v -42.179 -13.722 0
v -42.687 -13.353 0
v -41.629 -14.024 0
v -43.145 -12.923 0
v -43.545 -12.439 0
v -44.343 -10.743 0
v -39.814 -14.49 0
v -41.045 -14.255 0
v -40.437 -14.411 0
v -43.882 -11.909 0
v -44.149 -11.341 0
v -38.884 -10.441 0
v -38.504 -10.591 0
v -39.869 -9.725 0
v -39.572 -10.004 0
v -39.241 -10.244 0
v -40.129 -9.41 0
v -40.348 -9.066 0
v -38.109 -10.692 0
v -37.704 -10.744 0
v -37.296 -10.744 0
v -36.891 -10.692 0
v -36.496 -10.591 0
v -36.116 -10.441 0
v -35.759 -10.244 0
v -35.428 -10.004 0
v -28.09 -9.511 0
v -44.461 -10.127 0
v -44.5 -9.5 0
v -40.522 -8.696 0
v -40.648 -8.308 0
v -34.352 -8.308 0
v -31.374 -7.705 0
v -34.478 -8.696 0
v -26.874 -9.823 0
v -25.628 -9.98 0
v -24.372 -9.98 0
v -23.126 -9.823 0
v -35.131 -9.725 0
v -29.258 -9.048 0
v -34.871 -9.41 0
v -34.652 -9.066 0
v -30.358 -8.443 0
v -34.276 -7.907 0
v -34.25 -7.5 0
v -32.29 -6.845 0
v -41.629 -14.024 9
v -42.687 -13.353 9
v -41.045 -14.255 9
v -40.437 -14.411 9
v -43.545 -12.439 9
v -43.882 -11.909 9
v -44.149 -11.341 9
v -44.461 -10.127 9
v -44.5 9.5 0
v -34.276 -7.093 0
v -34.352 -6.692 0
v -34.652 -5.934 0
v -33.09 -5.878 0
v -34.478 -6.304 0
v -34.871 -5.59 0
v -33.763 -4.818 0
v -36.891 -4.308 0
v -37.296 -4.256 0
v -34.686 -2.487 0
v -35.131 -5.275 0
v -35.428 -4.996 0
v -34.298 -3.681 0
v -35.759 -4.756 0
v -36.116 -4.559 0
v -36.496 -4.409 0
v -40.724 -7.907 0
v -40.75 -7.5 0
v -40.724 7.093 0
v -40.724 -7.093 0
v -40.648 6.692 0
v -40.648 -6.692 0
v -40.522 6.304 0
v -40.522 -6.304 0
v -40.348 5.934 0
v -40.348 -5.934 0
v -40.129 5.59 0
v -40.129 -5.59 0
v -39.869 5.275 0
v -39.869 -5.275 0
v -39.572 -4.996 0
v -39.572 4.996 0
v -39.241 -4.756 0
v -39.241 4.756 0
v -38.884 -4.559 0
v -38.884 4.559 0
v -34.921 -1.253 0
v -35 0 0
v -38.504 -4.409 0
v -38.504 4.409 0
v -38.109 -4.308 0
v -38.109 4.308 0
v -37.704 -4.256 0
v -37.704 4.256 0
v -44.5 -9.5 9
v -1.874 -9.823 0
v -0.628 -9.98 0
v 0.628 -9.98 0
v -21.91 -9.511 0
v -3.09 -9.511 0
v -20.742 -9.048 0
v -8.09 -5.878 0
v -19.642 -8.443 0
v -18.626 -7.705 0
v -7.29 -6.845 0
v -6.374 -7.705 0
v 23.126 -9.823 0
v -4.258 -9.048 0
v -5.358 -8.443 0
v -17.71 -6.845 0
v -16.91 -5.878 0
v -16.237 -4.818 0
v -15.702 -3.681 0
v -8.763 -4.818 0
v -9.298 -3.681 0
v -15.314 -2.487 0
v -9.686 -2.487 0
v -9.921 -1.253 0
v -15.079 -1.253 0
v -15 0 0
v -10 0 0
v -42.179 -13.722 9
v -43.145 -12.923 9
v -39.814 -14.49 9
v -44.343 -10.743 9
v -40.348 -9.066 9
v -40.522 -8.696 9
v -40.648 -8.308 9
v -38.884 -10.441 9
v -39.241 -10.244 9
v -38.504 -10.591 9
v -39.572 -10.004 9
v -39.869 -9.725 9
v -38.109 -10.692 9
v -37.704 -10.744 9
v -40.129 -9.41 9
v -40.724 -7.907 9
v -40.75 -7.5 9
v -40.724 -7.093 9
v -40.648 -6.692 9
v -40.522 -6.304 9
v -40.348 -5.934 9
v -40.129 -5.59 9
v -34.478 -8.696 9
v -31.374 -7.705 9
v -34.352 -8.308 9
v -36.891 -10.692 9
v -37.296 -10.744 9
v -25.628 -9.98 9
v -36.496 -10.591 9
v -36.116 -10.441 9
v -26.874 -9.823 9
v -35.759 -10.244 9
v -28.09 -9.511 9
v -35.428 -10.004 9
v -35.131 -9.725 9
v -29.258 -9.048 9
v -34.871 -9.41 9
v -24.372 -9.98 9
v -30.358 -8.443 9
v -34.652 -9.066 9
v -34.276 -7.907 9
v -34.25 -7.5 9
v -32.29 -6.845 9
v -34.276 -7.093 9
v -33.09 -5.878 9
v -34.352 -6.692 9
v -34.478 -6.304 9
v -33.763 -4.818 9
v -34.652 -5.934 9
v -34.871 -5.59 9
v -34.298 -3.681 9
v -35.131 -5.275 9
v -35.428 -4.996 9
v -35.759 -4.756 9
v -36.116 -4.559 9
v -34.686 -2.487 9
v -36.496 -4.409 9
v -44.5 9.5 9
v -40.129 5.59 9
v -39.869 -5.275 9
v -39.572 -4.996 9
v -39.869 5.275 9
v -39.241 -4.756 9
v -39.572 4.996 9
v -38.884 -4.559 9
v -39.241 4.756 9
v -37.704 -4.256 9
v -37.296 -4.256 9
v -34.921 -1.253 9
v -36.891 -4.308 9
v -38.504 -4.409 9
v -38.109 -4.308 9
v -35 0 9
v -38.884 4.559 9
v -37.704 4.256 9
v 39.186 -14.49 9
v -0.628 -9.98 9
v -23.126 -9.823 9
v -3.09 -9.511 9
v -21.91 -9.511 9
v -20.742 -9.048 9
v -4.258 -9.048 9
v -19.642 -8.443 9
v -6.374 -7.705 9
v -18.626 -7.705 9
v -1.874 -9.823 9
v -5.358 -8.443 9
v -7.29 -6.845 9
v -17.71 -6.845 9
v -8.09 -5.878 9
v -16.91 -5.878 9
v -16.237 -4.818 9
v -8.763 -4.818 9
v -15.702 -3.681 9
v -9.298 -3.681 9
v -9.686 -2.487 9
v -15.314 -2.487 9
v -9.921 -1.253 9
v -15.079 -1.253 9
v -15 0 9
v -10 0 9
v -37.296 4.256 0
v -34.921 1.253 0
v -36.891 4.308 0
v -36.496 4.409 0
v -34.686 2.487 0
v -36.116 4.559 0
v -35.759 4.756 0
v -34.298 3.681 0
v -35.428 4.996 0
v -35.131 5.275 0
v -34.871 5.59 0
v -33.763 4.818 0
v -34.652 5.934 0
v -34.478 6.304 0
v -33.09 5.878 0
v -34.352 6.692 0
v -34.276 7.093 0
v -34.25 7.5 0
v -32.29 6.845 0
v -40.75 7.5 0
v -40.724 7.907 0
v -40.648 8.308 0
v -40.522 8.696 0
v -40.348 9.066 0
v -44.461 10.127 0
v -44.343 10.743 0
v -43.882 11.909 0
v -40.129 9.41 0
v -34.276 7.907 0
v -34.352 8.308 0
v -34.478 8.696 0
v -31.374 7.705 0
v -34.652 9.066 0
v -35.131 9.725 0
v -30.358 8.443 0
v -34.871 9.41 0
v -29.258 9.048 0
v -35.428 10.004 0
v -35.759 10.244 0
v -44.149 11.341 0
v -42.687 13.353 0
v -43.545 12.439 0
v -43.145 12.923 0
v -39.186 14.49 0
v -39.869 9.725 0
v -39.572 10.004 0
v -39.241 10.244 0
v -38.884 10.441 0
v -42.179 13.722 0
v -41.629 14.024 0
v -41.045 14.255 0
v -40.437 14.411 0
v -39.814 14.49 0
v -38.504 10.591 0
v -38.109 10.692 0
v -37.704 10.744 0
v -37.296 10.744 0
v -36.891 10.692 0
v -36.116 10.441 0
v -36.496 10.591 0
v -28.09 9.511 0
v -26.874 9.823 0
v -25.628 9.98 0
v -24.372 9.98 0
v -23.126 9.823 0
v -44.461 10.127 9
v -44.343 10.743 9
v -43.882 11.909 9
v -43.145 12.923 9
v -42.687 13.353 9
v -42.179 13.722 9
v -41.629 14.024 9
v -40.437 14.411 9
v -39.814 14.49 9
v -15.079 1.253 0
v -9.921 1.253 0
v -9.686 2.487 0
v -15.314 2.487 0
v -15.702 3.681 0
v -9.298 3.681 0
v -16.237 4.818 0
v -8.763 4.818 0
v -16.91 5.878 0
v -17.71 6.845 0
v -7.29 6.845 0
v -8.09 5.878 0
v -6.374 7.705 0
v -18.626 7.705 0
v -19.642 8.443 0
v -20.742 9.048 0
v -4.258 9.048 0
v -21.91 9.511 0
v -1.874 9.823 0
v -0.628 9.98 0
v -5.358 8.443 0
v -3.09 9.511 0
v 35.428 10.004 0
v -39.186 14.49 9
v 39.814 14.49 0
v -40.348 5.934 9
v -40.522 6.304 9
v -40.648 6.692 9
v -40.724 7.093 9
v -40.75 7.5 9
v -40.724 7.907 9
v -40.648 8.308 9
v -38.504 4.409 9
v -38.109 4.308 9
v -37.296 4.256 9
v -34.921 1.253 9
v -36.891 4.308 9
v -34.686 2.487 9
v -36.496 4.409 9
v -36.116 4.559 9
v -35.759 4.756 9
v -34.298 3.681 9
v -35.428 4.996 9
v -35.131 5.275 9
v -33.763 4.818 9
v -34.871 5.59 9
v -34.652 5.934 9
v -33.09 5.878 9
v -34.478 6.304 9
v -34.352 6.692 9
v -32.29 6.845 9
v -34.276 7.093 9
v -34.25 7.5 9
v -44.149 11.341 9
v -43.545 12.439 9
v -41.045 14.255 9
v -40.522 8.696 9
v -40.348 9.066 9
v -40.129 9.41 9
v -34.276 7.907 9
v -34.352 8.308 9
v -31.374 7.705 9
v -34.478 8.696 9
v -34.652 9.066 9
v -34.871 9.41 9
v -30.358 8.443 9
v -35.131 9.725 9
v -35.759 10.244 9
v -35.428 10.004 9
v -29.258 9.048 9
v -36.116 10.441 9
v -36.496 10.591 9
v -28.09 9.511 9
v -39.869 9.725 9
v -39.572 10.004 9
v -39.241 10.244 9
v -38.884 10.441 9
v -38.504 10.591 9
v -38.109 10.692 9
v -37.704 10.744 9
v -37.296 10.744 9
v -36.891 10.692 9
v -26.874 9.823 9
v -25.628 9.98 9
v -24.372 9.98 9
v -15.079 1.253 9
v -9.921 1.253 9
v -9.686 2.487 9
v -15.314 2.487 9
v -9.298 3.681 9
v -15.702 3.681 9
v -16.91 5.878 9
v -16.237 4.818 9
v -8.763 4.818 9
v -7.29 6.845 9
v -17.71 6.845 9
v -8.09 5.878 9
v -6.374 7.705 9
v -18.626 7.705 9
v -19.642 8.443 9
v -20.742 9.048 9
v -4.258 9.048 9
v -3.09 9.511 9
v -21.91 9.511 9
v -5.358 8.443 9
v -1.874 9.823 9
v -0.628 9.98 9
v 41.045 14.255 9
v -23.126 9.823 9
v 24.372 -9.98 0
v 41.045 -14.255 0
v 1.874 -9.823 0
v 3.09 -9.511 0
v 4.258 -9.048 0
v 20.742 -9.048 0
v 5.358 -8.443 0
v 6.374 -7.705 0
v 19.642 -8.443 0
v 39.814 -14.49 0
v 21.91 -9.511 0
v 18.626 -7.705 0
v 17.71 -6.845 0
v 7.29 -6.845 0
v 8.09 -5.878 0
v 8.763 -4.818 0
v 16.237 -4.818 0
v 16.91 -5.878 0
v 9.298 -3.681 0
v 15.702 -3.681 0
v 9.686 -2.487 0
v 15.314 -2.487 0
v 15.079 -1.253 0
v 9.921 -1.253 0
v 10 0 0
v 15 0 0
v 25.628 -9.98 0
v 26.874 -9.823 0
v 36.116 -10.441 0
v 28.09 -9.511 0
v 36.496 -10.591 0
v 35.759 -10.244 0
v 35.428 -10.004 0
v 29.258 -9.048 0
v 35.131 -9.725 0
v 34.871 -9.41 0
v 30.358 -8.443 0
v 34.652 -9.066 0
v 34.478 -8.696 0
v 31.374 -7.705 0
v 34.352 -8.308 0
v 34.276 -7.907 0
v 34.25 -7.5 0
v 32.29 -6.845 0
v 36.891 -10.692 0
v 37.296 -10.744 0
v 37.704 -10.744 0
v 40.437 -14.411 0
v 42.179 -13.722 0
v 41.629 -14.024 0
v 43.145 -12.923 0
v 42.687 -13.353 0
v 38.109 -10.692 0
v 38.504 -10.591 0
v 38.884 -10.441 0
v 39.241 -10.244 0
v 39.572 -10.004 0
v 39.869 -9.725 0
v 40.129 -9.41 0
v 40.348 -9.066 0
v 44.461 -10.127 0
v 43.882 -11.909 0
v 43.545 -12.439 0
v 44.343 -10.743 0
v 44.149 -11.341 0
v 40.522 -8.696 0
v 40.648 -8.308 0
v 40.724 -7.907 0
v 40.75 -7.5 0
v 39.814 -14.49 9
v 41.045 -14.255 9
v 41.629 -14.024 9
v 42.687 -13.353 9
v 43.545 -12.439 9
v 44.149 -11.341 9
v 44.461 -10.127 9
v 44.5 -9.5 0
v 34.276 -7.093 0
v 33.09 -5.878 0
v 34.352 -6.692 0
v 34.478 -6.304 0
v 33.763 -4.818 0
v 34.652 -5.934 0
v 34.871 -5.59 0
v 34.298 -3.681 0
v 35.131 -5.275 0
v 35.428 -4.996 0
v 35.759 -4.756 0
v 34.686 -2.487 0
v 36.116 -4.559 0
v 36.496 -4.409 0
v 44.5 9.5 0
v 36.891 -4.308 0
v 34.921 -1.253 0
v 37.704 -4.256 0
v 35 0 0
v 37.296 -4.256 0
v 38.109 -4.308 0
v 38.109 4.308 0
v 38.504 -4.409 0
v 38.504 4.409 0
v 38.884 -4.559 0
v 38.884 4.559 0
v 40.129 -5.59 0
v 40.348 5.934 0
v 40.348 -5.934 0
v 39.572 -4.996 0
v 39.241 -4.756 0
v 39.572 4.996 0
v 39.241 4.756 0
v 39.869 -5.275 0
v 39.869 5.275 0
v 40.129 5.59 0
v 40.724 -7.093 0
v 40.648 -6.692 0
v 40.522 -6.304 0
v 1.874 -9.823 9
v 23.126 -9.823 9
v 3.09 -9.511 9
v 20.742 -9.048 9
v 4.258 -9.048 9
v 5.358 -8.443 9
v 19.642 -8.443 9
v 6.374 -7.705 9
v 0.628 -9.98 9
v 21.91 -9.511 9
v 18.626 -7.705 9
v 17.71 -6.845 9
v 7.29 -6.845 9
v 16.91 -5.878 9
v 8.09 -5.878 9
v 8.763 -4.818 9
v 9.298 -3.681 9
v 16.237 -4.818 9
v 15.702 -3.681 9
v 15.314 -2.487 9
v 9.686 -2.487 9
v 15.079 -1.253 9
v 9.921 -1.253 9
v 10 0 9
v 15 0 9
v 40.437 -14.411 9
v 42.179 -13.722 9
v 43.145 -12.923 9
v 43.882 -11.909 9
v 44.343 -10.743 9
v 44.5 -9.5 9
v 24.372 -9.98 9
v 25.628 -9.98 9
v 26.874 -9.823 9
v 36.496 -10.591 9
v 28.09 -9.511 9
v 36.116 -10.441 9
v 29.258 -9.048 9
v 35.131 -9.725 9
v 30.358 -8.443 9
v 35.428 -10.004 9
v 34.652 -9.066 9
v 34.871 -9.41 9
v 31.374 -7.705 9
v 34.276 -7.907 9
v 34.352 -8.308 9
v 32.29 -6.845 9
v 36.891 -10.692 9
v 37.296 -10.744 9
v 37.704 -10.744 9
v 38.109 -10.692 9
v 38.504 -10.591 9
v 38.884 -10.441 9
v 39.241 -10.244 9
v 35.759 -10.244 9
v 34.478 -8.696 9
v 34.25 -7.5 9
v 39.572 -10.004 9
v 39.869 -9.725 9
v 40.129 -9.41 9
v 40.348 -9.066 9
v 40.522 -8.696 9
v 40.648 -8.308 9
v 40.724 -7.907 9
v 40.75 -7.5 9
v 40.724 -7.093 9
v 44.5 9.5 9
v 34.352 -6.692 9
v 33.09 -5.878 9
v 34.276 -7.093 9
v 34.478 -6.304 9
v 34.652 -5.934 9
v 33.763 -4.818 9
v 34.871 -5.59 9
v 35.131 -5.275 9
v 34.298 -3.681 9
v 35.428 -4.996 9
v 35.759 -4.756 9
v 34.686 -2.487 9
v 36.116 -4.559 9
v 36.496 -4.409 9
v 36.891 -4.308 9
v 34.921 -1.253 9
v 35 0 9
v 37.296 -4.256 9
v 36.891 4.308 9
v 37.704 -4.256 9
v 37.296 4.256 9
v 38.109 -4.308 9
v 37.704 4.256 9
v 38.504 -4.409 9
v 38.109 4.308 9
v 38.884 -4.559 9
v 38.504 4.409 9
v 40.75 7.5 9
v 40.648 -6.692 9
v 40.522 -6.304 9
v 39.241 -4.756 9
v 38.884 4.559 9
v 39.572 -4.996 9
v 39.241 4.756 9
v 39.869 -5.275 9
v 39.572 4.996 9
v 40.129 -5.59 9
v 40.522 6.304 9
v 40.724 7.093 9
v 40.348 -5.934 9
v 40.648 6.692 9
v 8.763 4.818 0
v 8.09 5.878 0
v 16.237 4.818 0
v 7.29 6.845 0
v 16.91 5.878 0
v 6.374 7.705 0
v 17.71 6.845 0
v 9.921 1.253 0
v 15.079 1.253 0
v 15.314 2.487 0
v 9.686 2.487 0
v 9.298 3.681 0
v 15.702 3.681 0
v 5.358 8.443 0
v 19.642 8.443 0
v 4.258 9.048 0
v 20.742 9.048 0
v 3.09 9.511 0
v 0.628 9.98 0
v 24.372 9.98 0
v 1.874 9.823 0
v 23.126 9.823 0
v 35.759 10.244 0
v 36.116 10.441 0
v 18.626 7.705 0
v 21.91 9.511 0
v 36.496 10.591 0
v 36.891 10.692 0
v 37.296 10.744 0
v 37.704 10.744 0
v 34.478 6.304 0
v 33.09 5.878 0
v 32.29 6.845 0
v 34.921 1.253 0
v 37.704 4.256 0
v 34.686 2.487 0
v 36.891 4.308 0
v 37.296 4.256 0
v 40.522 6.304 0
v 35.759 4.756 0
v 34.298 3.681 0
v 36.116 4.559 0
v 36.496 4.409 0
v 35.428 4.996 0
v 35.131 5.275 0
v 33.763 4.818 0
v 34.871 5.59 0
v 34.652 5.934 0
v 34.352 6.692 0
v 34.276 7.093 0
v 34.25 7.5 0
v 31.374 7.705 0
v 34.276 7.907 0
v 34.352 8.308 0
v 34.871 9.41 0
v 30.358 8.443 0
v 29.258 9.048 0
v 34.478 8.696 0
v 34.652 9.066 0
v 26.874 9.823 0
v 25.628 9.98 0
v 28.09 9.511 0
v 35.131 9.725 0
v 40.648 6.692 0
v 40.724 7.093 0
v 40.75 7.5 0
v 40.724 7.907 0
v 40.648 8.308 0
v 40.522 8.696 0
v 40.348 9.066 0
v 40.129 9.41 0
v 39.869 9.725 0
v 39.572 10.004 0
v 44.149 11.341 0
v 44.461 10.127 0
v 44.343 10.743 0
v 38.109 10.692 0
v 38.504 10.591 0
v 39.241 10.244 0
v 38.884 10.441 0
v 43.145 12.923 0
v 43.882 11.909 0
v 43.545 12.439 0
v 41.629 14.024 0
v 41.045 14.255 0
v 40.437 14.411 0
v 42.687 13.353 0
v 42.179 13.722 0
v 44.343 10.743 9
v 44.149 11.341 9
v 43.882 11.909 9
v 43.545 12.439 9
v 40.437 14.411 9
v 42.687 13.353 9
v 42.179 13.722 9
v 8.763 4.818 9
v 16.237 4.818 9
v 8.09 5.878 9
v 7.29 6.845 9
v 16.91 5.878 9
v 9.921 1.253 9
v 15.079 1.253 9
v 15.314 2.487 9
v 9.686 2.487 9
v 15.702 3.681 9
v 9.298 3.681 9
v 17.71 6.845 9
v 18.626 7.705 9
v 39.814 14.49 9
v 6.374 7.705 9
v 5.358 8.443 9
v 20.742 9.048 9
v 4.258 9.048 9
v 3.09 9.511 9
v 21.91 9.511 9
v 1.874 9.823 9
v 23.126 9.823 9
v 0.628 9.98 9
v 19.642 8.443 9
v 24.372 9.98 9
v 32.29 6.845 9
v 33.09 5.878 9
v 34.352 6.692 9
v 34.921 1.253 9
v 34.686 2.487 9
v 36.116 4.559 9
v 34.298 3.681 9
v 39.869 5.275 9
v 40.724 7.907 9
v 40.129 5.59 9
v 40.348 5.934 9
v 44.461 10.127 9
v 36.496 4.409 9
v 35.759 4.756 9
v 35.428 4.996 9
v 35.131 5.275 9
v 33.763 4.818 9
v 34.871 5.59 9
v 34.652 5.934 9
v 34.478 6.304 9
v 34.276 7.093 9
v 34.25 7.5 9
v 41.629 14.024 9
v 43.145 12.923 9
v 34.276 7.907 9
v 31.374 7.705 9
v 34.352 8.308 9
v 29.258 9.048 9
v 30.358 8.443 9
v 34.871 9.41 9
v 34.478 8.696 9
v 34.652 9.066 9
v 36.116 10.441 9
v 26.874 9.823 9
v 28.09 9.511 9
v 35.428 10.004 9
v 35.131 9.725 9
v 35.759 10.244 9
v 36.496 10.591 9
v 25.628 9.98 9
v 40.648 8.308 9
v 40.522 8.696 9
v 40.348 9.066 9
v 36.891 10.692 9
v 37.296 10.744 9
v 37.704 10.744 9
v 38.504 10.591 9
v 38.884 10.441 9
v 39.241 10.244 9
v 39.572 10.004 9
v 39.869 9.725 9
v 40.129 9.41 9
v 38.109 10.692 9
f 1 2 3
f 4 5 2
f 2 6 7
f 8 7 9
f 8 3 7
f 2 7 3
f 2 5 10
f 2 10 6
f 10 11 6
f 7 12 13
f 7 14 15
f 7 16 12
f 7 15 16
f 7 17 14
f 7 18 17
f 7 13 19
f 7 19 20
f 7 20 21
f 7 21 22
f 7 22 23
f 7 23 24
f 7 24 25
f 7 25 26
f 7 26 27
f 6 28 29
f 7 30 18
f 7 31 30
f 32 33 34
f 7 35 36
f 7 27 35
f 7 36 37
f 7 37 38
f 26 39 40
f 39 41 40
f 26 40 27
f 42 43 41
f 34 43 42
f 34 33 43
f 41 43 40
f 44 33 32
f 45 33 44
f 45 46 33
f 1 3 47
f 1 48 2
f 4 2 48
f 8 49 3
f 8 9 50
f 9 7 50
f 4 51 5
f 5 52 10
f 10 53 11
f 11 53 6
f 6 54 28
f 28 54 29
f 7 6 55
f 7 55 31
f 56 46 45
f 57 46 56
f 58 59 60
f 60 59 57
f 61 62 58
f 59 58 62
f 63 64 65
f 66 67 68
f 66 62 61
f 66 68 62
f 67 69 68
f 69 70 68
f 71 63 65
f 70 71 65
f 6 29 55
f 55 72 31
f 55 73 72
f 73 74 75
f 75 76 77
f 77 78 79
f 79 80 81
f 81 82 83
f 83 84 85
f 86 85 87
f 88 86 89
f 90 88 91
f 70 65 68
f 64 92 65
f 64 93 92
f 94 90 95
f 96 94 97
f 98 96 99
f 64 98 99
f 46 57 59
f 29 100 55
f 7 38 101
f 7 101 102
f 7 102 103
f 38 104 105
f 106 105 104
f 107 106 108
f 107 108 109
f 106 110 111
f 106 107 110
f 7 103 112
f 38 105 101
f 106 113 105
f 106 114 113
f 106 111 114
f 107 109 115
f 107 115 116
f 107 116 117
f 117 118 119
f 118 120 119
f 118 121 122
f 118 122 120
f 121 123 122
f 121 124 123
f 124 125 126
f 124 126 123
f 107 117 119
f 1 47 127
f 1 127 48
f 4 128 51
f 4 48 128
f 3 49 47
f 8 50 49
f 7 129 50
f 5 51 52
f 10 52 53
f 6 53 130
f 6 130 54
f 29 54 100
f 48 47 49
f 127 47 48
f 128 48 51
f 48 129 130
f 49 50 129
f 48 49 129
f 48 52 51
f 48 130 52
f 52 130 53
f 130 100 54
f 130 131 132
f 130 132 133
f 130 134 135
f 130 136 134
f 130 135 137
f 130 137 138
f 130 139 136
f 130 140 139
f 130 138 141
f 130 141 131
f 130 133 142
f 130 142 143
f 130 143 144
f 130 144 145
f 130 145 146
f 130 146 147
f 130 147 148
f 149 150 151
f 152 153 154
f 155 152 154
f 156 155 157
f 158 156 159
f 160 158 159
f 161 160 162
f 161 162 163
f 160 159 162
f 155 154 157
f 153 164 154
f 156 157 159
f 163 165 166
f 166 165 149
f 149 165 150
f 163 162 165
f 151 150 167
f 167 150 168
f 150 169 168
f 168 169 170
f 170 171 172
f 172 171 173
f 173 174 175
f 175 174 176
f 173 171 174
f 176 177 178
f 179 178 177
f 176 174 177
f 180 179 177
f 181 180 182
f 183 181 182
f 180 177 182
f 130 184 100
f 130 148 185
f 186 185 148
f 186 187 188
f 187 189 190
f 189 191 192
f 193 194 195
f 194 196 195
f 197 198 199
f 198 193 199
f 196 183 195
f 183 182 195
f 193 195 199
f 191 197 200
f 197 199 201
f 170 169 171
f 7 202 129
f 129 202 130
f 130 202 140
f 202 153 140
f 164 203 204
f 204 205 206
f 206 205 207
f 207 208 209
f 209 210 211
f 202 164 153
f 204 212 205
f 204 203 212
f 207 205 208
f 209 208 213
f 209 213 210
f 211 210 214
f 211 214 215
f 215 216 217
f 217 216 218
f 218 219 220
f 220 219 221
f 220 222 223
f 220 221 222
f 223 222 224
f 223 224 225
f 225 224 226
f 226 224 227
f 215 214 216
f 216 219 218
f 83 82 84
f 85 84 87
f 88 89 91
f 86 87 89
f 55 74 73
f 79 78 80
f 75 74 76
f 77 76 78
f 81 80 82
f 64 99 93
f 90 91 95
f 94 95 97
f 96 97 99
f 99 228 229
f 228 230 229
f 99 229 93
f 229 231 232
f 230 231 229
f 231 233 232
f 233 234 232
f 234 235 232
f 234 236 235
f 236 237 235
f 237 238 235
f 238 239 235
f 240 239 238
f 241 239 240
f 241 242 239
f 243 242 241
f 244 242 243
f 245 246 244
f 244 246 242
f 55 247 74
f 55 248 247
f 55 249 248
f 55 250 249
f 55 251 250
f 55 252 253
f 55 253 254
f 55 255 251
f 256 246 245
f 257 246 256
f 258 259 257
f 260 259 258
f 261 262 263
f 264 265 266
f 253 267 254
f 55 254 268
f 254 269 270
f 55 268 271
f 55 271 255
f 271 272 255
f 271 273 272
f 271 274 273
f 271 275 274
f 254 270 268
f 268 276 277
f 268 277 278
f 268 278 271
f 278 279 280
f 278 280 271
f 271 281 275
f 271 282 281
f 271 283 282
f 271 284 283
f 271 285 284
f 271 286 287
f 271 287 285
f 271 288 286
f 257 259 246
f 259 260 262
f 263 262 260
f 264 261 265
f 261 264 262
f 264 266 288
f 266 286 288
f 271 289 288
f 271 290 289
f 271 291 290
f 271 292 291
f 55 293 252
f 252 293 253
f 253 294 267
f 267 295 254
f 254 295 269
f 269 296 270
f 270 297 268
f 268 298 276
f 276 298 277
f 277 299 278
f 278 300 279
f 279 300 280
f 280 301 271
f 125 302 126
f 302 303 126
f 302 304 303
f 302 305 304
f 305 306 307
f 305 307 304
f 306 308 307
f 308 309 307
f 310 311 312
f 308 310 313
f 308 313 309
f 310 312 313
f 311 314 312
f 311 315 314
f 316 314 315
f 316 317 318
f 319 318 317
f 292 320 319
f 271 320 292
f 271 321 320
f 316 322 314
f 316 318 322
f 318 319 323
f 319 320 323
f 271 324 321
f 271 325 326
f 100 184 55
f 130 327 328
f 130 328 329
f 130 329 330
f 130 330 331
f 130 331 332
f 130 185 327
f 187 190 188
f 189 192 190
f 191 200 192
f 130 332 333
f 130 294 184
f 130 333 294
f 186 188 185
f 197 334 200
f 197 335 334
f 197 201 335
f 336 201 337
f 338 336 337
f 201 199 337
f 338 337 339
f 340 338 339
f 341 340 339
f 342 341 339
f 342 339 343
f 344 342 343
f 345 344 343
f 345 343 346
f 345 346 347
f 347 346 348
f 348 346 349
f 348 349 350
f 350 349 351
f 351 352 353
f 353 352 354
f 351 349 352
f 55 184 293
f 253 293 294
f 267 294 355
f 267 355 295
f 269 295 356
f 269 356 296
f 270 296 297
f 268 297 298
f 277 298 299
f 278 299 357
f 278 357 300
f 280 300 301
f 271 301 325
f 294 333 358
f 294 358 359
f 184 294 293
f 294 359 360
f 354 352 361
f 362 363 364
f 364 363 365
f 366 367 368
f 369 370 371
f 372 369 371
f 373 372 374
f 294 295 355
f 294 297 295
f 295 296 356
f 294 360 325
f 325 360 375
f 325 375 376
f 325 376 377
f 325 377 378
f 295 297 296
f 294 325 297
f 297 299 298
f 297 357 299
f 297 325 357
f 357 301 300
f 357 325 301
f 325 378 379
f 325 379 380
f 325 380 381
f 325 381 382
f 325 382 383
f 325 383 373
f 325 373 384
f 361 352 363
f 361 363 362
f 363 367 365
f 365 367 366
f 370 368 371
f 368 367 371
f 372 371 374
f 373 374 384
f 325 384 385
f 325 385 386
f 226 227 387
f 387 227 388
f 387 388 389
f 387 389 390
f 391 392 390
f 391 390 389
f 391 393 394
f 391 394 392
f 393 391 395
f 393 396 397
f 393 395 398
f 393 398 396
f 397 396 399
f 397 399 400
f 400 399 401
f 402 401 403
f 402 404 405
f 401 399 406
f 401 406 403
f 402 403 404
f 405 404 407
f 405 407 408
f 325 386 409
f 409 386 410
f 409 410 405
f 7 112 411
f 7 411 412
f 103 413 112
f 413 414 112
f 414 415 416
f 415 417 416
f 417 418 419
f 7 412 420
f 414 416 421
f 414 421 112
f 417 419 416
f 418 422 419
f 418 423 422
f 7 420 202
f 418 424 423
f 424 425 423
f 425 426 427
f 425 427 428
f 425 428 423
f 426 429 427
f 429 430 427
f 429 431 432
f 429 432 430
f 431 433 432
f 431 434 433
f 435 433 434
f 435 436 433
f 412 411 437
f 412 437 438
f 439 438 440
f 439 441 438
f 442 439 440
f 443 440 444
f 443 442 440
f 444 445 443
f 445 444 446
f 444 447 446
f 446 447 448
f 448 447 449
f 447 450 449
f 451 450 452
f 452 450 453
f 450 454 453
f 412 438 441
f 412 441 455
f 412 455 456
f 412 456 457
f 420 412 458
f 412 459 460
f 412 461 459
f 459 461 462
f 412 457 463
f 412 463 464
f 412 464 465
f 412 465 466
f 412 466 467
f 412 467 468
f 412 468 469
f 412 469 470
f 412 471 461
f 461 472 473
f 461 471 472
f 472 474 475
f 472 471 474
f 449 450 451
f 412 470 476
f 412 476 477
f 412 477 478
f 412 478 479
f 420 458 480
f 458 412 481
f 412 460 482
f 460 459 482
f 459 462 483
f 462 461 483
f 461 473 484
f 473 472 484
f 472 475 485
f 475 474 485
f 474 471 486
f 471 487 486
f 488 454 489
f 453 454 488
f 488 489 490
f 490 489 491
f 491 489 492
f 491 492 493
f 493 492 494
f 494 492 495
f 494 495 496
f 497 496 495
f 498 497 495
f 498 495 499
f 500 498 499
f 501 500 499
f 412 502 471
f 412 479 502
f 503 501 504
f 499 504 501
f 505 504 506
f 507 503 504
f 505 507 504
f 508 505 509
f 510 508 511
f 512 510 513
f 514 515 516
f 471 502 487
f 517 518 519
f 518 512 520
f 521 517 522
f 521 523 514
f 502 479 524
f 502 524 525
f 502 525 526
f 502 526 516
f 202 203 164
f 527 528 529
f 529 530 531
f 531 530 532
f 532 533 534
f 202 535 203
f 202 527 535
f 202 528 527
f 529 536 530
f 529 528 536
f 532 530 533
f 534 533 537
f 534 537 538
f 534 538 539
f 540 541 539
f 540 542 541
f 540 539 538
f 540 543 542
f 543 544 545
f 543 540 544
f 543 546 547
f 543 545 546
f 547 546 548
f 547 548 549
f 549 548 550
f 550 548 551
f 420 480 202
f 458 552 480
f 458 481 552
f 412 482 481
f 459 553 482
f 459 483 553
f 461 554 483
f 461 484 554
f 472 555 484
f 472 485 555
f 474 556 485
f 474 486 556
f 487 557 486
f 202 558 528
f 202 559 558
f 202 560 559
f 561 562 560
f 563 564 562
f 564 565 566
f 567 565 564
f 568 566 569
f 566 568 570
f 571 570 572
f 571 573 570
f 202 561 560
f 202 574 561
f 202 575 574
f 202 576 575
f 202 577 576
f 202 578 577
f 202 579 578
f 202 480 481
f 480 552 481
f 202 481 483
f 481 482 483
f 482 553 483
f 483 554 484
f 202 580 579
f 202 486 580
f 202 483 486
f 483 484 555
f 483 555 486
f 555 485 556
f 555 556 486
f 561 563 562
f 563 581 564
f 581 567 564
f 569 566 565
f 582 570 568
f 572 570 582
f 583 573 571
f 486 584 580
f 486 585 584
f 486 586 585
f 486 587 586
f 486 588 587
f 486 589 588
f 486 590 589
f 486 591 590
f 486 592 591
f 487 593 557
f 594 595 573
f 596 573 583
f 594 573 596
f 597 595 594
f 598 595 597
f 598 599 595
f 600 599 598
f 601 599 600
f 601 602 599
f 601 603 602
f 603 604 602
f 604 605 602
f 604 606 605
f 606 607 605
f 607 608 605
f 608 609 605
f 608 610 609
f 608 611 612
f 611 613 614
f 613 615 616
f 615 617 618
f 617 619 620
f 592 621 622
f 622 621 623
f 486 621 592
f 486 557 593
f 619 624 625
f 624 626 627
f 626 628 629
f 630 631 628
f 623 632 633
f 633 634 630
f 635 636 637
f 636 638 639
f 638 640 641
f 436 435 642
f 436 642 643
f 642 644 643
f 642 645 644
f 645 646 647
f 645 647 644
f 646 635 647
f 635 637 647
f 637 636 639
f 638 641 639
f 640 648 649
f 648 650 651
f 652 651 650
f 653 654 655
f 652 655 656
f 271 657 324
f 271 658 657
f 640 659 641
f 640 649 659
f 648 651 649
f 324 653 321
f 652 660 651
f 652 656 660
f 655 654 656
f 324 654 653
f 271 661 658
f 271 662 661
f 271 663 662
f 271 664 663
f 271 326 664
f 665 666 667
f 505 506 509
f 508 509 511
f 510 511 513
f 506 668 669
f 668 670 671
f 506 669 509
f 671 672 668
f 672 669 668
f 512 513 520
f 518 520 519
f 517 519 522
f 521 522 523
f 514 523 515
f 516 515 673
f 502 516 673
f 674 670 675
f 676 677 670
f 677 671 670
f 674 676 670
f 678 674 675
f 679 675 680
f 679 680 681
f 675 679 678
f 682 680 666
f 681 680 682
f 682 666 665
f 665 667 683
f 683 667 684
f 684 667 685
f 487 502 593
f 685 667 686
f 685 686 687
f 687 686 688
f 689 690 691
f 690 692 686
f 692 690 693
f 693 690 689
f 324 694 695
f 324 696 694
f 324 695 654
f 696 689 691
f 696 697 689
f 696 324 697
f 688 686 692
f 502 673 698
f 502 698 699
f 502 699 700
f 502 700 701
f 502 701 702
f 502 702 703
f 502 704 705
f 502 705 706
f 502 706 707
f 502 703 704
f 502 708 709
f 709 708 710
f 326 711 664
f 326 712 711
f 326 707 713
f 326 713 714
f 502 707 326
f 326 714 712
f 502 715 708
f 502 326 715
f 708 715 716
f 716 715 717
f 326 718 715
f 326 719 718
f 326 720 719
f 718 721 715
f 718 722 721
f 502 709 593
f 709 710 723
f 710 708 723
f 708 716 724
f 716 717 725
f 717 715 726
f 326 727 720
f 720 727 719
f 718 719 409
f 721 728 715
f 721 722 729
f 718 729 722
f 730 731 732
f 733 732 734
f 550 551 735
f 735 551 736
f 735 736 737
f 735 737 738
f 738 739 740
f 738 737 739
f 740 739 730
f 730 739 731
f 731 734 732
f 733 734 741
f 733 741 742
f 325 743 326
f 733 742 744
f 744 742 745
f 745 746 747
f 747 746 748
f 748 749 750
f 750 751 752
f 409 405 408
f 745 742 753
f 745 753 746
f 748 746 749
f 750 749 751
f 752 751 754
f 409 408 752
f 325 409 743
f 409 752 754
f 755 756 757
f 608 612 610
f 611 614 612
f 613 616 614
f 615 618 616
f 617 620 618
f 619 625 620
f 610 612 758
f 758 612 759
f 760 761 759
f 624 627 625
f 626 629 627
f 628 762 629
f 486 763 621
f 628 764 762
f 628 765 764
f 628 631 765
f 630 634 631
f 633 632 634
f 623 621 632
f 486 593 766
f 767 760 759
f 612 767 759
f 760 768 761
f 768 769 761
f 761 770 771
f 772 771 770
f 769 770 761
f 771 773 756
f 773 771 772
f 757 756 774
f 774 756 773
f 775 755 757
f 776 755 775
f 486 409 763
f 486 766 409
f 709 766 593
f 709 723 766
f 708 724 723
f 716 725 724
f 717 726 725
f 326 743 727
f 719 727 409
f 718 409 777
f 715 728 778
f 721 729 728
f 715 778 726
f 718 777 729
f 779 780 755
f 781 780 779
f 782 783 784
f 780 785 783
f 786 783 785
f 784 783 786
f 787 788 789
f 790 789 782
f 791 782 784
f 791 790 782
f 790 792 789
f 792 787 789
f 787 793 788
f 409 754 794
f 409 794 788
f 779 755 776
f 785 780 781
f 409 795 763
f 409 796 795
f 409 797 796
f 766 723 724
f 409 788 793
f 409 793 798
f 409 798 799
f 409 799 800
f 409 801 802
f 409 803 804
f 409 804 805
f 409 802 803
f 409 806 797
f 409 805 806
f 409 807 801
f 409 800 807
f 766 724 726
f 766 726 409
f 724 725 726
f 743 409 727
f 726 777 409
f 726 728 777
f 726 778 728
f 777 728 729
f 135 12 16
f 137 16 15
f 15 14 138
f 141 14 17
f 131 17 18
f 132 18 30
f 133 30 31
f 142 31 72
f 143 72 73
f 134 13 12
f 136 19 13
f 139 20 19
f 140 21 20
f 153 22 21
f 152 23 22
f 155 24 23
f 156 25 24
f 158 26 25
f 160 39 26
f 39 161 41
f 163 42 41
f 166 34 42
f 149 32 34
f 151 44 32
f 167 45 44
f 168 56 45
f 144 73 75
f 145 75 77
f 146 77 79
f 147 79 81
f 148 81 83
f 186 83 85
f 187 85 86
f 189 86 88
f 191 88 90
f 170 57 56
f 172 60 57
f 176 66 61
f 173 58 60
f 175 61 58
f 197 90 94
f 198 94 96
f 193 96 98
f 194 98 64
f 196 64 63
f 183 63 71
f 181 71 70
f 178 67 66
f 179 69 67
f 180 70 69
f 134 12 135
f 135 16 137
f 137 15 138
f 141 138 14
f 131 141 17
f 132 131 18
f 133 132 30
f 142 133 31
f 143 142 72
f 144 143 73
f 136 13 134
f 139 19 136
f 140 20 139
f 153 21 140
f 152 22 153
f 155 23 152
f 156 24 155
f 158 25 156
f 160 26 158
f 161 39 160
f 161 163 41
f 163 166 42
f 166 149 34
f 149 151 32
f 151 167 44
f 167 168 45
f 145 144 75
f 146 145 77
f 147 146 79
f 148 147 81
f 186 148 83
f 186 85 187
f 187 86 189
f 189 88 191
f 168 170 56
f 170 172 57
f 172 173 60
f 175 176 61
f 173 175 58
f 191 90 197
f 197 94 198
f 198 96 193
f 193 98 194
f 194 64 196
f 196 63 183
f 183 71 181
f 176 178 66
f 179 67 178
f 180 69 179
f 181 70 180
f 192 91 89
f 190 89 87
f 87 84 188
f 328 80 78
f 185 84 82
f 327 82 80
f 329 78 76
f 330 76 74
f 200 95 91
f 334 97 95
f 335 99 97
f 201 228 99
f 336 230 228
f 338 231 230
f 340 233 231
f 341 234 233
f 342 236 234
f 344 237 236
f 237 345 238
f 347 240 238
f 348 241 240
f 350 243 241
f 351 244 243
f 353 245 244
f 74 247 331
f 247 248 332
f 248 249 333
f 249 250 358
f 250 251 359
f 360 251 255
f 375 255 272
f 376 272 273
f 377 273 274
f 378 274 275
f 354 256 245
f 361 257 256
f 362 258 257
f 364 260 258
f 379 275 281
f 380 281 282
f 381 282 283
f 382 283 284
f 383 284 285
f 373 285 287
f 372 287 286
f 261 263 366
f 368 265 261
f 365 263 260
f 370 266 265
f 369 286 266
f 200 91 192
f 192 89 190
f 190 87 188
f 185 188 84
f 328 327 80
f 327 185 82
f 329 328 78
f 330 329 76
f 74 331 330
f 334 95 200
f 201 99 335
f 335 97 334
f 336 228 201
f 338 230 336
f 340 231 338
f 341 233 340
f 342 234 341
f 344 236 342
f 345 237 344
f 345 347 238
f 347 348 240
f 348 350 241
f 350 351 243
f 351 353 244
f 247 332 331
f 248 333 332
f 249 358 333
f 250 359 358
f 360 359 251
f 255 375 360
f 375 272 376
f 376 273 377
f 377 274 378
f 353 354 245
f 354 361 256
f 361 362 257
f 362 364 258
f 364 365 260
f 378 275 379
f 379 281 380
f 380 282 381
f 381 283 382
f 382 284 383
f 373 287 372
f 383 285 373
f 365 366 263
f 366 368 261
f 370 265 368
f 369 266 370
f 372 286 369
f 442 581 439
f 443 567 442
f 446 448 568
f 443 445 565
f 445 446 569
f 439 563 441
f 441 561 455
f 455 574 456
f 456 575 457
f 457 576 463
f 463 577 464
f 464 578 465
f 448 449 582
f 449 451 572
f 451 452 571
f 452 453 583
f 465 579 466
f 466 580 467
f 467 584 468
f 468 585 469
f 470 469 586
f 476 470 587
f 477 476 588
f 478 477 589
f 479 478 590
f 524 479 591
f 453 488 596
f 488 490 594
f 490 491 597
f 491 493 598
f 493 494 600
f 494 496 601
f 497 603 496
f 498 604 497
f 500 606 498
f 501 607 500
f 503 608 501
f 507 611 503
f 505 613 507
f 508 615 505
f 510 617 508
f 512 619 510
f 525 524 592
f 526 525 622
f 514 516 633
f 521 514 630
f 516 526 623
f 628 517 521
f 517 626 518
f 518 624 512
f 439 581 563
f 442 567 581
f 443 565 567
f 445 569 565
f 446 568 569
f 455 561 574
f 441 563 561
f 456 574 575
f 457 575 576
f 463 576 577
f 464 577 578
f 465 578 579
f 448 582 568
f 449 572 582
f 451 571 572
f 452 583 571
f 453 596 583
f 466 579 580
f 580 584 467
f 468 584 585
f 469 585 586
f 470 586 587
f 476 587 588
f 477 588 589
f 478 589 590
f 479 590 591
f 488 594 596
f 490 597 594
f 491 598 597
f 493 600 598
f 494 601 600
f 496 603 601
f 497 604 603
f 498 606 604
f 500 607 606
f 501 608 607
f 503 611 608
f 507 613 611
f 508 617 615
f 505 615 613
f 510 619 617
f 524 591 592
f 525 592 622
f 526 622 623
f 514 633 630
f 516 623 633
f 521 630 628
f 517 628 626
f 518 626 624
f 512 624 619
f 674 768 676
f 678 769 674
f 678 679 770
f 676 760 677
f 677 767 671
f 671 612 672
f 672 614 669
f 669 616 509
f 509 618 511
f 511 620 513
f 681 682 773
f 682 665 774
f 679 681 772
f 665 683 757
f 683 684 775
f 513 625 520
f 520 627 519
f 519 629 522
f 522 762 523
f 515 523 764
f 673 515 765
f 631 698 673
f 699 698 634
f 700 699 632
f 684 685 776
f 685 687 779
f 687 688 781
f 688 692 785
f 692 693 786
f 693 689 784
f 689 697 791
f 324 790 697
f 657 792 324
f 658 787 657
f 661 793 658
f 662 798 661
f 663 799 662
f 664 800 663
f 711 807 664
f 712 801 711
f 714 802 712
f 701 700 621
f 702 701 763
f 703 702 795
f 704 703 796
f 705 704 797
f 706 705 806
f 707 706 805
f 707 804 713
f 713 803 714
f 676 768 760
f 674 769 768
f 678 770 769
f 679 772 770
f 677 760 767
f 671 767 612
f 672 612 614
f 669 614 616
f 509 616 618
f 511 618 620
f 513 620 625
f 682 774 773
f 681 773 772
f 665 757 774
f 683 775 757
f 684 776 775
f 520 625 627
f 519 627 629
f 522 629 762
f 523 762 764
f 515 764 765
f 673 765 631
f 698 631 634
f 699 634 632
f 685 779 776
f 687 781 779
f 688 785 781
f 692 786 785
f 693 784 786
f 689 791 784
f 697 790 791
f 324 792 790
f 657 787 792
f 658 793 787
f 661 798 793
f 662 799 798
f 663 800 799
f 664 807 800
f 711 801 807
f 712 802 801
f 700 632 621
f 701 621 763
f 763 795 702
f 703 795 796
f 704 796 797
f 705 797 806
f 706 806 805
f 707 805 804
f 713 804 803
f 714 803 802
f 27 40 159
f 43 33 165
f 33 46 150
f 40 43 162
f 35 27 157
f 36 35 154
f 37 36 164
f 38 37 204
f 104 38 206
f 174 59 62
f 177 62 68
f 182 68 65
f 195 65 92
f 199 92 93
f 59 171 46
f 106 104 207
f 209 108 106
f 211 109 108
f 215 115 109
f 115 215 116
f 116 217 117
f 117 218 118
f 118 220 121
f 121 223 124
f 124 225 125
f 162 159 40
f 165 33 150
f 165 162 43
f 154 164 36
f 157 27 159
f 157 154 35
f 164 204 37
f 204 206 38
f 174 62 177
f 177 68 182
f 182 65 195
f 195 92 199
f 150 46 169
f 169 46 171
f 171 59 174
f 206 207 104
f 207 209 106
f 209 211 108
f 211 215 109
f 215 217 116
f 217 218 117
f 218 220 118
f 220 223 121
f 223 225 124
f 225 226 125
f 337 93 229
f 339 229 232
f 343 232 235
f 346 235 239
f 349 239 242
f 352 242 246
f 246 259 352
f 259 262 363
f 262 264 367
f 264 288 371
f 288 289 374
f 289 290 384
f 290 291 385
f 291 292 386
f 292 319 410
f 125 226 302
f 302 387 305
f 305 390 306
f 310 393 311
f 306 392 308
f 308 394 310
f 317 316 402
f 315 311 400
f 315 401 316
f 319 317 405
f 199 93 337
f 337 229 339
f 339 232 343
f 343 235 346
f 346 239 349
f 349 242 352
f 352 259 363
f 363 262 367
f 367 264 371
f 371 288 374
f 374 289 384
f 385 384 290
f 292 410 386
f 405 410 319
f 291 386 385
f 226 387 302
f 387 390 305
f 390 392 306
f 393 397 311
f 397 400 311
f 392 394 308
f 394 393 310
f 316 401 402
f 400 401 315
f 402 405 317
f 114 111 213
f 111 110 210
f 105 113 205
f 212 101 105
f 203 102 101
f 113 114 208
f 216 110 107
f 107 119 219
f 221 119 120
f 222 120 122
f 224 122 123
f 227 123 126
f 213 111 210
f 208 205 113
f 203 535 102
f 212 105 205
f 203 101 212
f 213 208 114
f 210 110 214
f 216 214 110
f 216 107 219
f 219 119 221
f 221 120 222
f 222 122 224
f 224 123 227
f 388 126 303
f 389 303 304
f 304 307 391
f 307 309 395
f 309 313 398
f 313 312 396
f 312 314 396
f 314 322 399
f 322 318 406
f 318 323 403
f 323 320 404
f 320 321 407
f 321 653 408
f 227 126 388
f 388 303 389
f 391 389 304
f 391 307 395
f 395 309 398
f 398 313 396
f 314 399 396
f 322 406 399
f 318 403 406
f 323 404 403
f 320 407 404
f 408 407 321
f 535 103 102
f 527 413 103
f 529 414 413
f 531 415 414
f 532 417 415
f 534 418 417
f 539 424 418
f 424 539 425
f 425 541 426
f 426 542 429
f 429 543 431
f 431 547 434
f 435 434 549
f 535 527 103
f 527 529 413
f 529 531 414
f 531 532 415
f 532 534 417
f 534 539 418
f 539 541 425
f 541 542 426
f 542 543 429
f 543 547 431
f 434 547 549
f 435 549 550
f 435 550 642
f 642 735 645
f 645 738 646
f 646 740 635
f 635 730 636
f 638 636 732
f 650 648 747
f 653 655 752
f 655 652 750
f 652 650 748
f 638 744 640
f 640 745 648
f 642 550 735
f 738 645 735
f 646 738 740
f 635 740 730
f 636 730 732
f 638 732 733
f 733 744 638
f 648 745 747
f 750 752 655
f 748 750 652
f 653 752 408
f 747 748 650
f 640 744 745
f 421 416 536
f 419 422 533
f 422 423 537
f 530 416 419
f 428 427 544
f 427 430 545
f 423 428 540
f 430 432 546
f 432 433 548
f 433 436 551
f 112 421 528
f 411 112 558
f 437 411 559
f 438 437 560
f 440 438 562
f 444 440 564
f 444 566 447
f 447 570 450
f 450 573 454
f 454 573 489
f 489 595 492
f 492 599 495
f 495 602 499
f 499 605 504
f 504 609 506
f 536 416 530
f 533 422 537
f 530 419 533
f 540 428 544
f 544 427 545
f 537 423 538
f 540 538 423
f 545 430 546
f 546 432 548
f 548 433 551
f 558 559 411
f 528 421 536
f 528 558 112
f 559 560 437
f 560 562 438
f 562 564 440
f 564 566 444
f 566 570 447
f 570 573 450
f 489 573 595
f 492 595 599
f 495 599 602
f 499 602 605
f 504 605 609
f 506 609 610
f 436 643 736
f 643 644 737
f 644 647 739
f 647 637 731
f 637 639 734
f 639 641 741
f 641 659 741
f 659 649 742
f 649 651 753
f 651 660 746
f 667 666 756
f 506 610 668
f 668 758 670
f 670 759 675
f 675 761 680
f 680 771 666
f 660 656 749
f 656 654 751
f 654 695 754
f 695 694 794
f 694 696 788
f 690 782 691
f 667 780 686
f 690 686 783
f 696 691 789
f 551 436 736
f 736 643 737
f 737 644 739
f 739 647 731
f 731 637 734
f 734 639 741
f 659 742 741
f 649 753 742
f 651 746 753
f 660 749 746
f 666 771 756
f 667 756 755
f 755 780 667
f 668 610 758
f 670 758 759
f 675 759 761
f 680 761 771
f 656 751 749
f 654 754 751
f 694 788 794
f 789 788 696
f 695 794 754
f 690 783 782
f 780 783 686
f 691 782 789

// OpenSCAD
$fn = 50;

difference() {
	union() {
		hull() {
			translate(v = [-39.5, 9.5, 0]) {
				cylinder(h = 9, r = 5);
			}
			translate(v = [39.5, 9.5, 0]) {
				cylinder(h = 9, r = 5);
			}
			translate(v = [-39.5, -9.5, 0]) {
				cylinder(h = 9, r = 5);
			}
			translate(v = [39.5, -9.5, 0]) {
				cylinder(h = 9, r = 5);
			}
		}
	}
	union() {
		translate(v = [-37.5, -7.5, -100.0]) {
			cylinder(h = 200, r = 3.25);
		}
		translate(v = [-37.5, 7.5, -100.0]) {
			cylinder(h = 200, r = 3.25);
		}
		translate(v = [37.5, -7.5, -100.0]) {
			cylinder(h = 200, r = 3.25);
		}
		translate(v = [37.5, 7.5, -100.0]) {
			cylinder(h = 200, r = 3.25);
		}
		translate(v = [-37.5, -7.5, -100.0]) {
			cylinder(h = 200, r = 1.8);
		}
		translate(v = [-37.5, 7.5, -100.0]) {
			cylinder(h = 200, r = 1.8);
		}
		translate(v = [37.5, -7.5, -100.0]) {
			cylinder(h = 200, r = 1.8);
		}
		translate(v = [37.5, 7.5, -100.0]) {
			cylinder(h = 200, r = 1.8);
		}
		translate(v = [-25.0, 0, 0.0]) {
			cylinder(h = 9, r = 10.0);
		}
		cylinder(h = 9, r = 10.0);
		translate(v = [25.0, 0, 0.0]) {
			cylinder(h = 9, r = 10.0);
		}
	}
}
